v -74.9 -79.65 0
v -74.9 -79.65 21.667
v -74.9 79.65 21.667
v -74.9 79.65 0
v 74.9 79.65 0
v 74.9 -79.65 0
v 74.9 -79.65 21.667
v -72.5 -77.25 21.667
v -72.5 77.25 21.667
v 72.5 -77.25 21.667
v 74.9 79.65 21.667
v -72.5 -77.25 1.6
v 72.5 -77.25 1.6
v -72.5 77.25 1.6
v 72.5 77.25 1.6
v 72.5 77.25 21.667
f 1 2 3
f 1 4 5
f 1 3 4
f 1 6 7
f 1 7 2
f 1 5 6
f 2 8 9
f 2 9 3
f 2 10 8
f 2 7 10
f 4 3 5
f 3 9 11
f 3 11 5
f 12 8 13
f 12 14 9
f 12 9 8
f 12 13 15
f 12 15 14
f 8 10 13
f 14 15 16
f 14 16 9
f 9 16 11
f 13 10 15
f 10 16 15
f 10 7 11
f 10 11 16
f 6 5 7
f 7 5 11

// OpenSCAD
// Start: lazy_union
default_5_default_5();
// End: lazy_union

// Modules.

// 'PartMaterial undef-default - default 5.0'
module default_5_default_5() {
  // 'None : _combine_solids_and_holes'
  union() {
    // '_combine_solids_and_holes'
    difference() {
      // 'one_hole : _combine_solids_and_holes'
      union() {
        // 'box'
        multmatrix(m=[[1.0, 0.0, 0.0, -74.9], [0.0, 1.0, 0.0, -79.65], [0.0, 0.0, 1.0, 0.0], [0.0, 0.0, 0.0, 1.0]]) {
          // 'box : _combine_solids_and_holes'
          union() {
            // 'box'
            cube(size=[149.8, 159.3, 21.666666666666668]);
          }
        }
      }
      // 'one_hole'
      multmatrix(m=[[1.0, 0.0, 0.0, -72.5], [0.0, 1.0, 0.0, -77.25], [0.0, 0.0, 1.0, 1.6], [0.0, 0.0, 0.0, 1.0]]) {
        // "('hole', 0, 0) : _combine_solids_and_holes"
        union() {
          // ('hole', 0, 0)
          cube(size=[145.0, 154.5, 20.076666666666668]);
        }
      }
    }
  }
} // end module default_5_default_5
